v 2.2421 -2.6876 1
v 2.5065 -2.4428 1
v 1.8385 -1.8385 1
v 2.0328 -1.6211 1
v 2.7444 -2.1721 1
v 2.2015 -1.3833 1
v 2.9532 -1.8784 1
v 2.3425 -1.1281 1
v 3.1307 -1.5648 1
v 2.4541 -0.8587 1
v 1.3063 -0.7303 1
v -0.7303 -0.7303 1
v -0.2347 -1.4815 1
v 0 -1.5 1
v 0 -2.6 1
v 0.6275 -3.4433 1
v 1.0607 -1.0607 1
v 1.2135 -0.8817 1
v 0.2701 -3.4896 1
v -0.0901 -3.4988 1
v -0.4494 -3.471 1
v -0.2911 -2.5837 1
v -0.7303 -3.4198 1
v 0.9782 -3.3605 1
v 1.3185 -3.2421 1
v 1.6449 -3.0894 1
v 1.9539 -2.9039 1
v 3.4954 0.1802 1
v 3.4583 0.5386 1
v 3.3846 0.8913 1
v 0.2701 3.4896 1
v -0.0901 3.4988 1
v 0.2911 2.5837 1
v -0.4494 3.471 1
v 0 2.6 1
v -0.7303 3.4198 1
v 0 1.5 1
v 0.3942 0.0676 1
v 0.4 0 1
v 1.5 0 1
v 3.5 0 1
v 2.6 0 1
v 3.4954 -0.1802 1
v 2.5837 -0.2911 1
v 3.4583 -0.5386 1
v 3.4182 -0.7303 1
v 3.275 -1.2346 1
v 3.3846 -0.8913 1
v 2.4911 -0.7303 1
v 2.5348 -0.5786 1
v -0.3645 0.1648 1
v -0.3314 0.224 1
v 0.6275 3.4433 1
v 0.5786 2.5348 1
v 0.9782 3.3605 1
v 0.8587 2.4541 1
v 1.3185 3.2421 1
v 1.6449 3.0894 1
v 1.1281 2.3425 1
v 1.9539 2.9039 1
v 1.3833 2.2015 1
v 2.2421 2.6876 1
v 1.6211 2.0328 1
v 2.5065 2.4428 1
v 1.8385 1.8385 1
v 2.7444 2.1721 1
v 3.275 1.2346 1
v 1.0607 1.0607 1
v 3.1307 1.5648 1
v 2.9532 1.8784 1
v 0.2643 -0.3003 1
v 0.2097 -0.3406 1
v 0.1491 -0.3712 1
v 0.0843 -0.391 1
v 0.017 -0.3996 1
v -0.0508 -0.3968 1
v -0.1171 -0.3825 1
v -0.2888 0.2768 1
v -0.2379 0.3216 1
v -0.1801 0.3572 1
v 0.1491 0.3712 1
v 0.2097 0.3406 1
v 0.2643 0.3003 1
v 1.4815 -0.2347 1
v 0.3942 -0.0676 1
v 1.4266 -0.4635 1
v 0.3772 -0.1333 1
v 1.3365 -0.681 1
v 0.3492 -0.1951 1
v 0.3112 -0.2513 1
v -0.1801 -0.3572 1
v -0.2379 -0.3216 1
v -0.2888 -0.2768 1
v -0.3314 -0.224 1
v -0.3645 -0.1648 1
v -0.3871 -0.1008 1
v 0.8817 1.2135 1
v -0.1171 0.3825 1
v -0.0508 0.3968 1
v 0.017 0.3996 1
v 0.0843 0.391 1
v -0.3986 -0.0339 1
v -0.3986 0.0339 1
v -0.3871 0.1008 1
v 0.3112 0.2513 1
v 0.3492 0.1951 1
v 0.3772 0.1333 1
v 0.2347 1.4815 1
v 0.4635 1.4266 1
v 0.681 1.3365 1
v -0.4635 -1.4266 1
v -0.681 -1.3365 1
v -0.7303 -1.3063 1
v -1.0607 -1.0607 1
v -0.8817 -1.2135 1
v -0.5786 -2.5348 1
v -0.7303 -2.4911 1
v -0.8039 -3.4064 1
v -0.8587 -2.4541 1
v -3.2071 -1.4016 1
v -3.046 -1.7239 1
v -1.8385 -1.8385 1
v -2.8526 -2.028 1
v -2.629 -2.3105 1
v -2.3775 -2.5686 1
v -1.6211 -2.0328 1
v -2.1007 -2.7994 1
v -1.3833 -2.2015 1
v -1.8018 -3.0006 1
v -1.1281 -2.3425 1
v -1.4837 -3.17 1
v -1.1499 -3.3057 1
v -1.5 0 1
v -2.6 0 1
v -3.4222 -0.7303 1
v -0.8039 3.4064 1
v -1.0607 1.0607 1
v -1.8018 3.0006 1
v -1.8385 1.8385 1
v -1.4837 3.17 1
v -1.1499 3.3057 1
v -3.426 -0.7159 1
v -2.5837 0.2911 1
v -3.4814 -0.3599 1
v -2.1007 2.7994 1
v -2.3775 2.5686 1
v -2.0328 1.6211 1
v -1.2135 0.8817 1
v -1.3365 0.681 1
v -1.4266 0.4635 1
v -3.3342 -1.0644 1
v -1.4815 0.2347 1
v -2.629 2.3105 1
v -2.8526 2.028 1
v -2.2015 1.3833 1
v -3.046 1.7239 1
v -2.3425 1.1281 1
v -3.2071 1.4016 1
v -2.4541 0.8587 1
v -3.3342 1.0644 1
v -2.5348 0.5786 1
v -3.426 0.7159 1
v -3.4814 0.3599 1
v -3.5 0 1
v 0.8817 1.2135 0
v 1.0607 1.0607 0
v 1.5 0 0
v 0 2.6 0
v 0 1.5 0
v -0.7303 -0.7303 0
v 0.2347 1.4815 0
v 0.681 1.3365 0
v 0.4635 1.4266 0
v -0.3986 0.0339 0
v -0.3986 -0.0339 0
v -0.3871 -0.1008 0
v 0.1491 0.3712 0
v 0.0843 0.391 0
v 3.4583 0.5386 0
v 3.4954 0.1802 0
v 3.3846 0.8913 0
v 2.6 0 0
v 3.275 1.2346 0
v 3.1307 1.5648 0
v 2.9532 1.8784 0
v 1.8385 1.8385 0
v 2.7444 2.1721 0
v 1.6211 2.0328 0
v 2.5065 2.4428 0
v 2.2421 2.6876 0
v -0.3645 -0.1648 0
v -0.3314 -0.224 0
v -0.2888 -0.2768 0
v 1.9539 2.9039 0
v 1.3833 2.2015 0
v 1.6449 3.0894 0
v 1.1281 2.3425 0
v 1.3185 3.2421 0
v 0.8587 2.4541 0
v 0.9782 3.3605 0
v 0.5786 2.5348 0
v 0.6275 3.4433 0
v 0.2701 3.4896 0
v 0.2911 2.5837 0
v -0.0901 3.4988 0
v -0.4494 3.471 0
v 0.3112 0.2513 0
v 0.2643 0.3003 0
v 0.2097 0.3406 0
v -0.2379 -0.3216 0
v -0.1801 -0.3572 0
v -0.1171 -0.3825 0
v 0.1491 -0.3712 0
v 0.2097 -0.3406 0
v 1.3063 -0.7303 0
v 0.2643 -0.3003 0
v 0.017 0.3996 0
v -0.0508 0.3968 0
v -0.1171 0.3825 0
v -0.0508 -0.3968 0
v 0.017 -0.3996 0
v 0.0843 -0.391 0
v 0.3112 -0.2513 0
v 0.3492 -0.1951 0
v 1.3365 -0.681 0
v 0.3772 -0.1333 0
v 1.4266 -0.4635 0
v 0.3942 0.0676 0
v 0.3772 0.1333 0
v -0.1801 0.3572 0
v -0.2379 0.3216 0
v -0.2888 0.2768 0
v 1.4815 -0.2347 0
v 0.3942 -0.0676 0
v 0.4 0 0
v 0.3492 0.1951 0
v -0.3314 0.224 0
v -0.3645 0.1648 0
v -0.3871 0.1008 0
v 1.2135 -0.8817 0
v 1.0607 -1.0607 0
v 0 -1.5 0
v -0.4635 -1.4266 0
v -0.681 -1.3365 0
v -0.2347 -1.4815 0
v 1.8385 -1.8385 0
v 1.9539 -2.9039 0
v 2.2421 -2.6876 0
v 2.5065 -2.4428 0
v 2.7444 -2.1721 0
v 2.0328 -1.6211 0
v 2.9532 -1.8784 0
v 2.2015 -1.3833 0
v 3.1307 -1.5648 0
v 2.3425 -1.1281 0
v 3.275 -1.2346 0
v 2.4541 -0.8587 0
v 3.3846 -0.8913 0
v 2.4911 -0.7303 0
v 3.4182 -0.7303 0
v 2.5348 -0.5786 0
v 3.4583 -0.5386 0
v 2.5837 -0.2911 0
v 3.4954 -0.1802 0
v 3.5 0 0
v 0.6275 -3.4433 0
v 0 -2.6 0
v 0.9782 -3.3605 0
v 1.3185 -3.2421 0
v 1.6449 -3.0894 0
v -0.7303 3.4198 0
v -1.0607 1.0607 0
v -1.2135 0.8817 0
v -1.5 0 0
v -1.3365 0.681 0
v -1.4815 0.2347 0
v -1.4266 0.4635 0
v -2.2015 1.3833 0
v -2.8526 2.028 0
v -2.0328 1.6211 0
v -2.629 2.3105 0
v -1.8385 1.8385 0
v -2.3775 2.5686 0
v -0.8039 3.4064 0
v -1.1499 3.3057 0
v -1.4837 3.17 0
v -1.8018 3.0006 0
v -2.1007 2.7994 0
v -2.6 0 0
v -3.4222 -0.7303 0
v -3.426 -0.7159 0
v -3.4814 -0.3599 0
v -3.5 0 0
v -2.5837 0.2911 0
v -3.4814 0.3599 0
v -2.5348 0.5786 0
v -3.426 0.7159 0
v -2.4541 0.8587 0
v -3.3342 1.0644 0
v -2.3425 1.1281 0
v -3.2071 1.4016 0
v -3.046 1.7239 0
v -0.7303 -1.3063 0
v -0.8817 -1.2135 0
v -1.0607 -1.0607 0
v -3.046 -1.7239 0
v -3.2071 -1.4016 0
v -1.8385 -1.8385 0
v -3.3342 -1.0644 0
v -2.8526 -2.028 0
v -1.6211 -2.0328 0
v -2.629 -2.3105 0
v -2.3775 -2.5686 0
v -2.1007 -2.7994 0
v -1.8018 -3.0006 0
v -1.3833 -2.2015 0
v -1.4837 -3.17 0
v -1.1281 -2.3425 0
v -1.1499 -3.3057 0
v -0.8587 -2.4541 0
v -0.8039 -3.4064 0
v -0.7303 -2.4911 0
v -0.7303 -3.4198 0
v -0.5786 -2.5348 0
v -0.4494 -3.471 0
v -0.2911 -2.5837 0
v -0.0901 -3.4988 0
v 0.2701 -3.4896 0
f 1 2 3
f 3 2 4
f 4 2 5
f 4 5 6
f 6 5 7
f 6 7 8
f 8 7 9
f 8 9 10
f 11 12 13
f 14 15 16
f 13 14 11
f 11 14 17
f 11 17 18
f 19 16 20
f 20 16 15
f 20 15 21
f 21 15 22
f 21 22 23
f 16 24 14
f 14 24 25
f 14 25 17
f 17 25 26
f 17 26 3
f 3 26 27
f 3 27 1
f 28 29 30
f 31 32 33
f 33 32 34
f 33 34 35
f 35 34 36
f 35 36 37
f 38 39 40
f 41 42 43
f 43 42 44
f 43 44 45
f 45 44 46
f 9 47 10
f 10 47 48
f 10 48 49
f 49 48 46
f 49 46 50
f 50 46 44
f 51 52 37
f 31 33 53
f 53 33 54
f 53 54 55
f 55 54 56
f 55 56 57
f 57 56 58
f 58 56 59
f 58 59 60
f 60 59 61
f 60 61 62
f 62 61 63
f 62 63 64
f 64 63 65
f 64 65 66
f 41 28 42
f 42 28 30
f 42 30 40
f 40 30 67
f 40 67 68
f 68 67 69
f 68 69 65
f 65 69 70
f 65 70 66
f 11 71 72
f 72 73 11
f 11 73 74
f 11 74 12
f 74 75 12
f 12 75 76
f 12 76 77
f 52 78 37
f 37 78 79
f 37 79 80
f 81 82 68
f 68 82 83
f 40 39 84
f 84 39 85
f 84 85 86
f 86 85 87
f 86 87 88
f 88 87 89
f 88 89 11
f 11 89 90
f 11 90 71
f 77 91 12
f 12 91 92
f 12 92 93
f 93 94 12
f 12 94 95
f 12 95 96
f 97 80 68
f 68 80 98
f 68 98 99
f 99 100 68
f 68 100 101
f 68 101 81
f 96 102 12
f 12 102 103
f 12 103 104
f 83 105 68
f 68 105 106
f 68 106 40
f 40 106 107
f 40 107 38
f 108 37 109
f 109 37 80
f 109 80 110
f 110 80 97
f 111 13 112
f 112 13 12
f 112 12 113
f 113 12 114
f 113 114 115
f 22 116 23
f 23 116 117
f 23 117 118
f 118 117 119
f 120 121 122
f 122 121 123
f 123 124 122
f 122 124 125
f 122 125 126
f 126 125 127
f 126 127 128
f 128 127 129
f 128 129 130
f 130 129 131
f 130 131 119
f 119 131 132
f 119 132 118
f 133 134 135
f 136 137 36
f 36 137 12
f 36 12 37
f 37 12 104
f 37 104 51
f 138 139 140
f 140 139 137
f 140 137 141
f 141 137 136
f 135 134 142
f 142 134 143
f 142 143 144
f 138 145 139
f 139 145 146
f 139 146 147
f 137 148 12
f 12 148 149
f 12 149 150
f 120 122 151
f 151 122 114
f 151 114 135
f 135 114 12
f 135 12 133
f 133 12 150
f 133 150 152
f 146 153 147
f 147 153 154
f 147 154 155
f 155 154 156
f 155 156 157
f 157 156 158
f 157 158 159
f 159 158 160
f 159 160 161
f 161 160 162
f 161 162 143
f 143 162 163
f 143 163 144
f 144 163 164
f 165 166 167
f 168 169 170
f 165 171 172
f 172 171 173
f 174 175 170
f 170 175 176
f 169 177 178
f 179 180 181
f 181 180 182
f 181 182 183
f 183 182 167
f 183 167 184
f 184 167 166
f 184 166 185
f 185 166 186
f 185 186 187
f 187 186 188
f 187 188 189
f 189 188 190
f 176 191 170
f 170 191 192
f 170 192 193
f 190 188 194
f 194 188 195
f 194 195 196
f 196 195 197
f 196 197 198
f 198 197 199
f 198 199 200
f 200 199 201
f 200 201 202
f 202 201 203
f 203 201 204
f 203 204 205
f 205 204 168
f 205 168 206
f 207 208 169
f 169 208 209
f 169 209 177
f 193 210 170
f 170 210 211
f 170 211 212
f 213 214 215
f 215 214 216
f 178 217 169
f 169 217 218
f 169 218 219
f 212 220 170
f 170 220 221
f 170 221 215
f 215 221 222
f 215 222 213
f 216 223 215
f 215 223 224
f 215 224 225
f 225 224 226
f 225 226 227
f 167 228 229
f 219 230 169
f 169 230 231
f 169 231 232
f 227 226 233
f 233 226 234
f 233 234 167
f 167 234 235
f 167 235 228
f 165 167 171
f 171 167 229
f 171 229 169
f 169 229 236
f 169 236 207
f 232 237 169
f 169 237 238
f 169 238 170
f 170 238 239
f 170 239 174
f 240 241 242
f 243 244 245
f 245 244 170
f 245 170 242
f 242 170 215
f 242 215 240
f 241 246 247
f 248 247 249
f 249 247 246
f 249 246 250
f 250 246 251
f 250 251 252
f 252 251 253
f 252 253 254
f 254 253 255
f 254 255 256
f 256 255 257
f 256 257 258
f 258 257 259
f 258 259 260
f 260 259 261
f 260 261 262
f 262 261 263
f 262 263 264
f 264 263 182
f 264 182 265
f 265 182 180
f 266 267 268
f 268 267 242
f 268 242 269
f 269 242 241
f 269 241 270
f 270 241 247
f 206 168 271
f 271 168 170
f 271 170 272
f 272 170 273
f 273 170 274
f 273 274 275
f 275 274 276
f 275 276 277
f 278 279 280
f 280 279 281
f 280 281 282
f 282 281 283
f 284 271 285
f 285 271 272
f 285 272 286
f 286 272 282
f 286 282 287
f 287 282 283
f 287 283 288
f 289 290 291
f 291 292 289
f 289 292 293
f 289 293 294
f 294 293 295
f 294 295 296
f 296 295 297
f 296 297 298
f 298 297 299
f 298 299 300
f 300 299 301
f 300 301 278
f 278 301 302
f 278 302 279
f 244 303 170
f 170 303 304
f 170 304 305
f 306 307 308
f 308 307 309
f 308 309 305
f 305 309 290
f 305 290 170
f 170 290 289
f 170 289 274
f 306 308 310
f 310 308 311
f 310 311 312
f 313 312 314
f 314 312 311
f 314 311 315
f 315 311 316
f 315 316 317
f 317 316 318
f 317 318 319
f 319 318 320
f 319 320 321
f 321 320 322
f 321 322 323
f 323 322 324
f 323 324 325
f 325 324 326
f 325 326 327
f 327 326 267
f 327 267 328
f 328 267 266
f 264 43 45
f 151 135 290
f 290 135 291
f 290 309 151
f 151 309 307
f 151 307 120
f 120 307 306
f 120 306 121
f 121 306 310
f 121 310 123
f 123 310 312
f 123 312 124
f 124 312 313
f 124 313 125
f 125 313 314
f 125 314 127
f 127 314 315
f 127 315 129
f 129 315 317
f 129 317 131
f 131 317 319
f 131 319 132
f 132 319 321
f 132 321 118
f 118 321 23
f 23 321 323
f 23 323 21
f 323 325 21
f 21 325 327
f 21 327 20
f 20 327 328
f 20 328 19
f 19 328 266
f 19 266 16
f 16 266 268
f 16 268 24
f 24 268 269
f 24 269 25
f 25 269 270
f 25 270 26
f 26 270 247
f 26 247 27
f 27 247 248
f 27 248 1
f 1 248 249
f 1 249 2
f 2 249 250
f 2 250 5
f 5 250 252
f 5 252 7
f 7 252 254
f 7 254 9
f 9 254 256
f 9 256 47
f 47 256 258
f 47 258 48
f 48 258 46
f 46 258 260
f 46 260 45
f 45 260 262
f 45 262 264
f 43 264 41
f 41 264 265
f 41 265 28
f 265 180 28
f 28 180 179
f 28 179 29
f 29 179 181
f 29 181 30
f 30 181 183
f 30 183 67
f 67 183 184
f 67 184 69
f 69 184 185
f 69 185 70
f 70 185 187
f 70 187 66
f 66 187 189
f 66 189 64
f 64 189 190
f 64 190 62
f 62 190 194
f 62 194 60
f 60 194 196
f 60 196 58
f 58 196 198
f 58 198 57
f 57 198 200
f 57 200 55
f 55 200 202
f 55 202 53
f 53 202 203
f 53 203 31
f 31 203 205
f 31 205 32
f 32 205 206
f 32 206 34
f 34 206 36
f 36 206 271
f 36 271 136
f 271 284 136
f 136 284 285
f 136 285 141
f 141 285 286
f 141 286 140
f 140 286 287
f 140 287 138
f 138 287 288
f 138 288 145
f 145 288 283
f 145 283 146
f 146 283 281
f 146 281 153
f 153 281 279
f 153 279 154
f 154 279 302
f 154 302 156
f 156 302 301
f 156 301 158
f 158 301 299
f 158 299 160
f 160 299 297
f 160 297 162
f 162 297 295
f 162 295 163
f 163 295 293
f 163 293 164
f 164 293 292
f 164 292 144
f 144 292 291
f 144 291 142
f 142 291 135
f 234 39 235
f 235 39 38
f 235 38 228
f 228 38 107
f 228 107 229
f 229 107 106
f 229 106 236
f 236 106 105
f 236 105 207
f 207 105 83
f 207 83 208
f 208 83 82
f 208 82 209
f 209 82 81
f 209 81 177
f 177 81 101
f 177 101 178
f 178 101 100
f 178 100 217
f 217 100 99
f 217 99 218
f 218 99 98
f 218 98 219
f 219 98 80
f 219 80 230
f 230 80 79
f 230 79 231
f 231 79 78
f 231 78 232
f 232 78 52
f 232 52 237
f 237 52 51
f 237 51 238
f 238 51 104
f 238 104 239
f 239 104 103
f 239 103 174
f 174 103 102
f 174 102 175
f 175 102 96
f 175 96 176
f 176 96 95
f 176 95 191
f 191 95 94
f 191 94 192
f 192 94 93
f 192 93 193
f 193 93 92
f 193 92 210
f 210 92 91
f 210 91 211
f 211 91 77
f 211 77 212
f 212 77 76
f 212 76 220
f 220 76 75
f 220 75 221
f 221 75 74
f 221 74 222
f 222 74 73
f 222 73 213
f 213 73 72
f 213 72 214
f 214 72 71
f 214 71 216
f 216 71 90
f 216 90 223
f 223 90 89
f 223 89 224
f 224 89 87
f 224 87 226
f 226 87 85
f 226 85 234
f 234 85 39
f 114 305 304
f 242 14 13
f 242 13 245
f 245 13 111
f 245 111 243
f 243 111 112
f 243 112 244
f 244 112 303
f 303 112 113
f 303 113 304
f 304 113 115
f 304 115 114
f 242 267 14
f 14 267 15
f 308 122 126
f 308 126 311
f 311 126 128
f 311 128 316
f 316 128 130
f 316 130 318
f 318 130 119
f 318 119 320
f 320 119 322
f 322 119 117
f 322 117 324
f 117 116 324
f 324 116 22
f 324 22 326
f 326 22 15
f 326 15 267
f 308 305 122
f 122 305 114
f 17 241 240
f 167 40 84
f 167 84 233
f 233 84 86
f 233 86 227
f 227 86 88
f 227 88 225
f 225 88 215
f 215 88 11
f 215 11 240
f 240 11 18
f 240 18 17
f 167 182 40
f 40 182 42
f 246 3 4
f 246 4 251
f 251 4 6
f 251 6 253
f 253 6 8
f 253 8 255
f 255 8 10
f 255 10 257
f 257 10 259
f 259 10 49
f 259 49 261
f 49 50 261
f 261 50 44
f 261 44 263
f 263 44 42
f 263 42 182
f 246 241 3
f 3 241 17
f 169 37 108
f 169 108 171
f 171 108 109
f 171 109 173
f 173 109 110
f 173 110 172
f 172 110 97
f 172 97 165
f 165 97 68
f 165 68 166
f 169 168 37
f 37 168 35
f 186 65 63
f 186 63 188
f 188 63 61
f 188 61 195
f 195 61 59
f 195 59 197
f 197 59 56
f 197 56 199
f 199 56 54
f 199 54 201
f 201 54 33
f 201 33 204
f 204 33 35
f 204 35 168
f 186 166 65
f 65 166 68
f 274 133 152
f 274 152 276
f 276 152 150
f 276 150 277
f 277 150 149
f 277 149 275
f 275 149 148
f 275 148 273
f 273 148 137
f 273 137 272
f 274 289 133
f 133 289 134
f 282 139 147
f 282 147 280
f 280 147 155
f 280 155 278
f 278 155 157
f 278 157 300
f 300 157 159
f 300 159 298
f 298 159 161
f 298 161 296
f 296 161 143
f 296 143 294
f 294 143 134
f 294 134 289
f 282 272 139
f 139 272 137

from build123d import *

# Parameters (mm, degrees)
SKETCH2_R           = 3.5
BOSS_EXTRUDE1_DEPTH = 1
SKETCH4_R           = 0.4
CUT_EXTRUDE2_DEPTH  = 6.049752469
CUT_EXTRUDE3_DEPTH  = 6.049752469
CIRPATTERN1_COUNT   = 4


with BuildPart() as part:
    # Sketch2 → Boss-Extrude1 (new body)
    with BuildSketch(Plane.XY):
        Circle(SKETCH2_R)
    extrude(amount=BOSS_EXTRUDE1_DEPTH)

    # Sketch4 → Cut-Extrude2 (cut, through all)
    with BuildSketch(Plane.XY.offset(1)):
        Circle(SKETCH4_R)
    extrude(amount=-CUT_EXTRUDE2_DEPTH, mode=Mode.SUBTRACT)

    # Sketch5 → Cut-Extrude3 (cut, through all)
    with BuildSketch(Plane.XY.offset(1)):
        with BuildLine():
            Line((-1.060660172, -1.060660172), (-1.838477631, -1.838477631))
            ThreePointArc((-1.838477631, -1.838477631), (-0.994976924, -2.402086785), (0, -2.6))
            Line((0, -2.6), (0, -1.5))
            ThreePointArc((0, -1.5), (-0.574025149, -1.385819299), (-1.060660172, -1.060660172))
        make_face()
    cut_extrude3 = extrude(amount=-CUT_EXTRUDE3_DEPTH, mode=Mode.SUBTRACT)

    # CirPattern1: Cut-Extrude3 ×4 about axis
    cirpattern1_axis = Axis((0, 0, 1), (0, 0, 1))
    for i in range(1, CIRPATTERN1_COUNT):
        add(cut_extrude3.rotate(cirpattern1_axis, i * 360 / CIRPATTERN1_COUNT), mode=Mode.SUBTRACT)


solid = part.part
